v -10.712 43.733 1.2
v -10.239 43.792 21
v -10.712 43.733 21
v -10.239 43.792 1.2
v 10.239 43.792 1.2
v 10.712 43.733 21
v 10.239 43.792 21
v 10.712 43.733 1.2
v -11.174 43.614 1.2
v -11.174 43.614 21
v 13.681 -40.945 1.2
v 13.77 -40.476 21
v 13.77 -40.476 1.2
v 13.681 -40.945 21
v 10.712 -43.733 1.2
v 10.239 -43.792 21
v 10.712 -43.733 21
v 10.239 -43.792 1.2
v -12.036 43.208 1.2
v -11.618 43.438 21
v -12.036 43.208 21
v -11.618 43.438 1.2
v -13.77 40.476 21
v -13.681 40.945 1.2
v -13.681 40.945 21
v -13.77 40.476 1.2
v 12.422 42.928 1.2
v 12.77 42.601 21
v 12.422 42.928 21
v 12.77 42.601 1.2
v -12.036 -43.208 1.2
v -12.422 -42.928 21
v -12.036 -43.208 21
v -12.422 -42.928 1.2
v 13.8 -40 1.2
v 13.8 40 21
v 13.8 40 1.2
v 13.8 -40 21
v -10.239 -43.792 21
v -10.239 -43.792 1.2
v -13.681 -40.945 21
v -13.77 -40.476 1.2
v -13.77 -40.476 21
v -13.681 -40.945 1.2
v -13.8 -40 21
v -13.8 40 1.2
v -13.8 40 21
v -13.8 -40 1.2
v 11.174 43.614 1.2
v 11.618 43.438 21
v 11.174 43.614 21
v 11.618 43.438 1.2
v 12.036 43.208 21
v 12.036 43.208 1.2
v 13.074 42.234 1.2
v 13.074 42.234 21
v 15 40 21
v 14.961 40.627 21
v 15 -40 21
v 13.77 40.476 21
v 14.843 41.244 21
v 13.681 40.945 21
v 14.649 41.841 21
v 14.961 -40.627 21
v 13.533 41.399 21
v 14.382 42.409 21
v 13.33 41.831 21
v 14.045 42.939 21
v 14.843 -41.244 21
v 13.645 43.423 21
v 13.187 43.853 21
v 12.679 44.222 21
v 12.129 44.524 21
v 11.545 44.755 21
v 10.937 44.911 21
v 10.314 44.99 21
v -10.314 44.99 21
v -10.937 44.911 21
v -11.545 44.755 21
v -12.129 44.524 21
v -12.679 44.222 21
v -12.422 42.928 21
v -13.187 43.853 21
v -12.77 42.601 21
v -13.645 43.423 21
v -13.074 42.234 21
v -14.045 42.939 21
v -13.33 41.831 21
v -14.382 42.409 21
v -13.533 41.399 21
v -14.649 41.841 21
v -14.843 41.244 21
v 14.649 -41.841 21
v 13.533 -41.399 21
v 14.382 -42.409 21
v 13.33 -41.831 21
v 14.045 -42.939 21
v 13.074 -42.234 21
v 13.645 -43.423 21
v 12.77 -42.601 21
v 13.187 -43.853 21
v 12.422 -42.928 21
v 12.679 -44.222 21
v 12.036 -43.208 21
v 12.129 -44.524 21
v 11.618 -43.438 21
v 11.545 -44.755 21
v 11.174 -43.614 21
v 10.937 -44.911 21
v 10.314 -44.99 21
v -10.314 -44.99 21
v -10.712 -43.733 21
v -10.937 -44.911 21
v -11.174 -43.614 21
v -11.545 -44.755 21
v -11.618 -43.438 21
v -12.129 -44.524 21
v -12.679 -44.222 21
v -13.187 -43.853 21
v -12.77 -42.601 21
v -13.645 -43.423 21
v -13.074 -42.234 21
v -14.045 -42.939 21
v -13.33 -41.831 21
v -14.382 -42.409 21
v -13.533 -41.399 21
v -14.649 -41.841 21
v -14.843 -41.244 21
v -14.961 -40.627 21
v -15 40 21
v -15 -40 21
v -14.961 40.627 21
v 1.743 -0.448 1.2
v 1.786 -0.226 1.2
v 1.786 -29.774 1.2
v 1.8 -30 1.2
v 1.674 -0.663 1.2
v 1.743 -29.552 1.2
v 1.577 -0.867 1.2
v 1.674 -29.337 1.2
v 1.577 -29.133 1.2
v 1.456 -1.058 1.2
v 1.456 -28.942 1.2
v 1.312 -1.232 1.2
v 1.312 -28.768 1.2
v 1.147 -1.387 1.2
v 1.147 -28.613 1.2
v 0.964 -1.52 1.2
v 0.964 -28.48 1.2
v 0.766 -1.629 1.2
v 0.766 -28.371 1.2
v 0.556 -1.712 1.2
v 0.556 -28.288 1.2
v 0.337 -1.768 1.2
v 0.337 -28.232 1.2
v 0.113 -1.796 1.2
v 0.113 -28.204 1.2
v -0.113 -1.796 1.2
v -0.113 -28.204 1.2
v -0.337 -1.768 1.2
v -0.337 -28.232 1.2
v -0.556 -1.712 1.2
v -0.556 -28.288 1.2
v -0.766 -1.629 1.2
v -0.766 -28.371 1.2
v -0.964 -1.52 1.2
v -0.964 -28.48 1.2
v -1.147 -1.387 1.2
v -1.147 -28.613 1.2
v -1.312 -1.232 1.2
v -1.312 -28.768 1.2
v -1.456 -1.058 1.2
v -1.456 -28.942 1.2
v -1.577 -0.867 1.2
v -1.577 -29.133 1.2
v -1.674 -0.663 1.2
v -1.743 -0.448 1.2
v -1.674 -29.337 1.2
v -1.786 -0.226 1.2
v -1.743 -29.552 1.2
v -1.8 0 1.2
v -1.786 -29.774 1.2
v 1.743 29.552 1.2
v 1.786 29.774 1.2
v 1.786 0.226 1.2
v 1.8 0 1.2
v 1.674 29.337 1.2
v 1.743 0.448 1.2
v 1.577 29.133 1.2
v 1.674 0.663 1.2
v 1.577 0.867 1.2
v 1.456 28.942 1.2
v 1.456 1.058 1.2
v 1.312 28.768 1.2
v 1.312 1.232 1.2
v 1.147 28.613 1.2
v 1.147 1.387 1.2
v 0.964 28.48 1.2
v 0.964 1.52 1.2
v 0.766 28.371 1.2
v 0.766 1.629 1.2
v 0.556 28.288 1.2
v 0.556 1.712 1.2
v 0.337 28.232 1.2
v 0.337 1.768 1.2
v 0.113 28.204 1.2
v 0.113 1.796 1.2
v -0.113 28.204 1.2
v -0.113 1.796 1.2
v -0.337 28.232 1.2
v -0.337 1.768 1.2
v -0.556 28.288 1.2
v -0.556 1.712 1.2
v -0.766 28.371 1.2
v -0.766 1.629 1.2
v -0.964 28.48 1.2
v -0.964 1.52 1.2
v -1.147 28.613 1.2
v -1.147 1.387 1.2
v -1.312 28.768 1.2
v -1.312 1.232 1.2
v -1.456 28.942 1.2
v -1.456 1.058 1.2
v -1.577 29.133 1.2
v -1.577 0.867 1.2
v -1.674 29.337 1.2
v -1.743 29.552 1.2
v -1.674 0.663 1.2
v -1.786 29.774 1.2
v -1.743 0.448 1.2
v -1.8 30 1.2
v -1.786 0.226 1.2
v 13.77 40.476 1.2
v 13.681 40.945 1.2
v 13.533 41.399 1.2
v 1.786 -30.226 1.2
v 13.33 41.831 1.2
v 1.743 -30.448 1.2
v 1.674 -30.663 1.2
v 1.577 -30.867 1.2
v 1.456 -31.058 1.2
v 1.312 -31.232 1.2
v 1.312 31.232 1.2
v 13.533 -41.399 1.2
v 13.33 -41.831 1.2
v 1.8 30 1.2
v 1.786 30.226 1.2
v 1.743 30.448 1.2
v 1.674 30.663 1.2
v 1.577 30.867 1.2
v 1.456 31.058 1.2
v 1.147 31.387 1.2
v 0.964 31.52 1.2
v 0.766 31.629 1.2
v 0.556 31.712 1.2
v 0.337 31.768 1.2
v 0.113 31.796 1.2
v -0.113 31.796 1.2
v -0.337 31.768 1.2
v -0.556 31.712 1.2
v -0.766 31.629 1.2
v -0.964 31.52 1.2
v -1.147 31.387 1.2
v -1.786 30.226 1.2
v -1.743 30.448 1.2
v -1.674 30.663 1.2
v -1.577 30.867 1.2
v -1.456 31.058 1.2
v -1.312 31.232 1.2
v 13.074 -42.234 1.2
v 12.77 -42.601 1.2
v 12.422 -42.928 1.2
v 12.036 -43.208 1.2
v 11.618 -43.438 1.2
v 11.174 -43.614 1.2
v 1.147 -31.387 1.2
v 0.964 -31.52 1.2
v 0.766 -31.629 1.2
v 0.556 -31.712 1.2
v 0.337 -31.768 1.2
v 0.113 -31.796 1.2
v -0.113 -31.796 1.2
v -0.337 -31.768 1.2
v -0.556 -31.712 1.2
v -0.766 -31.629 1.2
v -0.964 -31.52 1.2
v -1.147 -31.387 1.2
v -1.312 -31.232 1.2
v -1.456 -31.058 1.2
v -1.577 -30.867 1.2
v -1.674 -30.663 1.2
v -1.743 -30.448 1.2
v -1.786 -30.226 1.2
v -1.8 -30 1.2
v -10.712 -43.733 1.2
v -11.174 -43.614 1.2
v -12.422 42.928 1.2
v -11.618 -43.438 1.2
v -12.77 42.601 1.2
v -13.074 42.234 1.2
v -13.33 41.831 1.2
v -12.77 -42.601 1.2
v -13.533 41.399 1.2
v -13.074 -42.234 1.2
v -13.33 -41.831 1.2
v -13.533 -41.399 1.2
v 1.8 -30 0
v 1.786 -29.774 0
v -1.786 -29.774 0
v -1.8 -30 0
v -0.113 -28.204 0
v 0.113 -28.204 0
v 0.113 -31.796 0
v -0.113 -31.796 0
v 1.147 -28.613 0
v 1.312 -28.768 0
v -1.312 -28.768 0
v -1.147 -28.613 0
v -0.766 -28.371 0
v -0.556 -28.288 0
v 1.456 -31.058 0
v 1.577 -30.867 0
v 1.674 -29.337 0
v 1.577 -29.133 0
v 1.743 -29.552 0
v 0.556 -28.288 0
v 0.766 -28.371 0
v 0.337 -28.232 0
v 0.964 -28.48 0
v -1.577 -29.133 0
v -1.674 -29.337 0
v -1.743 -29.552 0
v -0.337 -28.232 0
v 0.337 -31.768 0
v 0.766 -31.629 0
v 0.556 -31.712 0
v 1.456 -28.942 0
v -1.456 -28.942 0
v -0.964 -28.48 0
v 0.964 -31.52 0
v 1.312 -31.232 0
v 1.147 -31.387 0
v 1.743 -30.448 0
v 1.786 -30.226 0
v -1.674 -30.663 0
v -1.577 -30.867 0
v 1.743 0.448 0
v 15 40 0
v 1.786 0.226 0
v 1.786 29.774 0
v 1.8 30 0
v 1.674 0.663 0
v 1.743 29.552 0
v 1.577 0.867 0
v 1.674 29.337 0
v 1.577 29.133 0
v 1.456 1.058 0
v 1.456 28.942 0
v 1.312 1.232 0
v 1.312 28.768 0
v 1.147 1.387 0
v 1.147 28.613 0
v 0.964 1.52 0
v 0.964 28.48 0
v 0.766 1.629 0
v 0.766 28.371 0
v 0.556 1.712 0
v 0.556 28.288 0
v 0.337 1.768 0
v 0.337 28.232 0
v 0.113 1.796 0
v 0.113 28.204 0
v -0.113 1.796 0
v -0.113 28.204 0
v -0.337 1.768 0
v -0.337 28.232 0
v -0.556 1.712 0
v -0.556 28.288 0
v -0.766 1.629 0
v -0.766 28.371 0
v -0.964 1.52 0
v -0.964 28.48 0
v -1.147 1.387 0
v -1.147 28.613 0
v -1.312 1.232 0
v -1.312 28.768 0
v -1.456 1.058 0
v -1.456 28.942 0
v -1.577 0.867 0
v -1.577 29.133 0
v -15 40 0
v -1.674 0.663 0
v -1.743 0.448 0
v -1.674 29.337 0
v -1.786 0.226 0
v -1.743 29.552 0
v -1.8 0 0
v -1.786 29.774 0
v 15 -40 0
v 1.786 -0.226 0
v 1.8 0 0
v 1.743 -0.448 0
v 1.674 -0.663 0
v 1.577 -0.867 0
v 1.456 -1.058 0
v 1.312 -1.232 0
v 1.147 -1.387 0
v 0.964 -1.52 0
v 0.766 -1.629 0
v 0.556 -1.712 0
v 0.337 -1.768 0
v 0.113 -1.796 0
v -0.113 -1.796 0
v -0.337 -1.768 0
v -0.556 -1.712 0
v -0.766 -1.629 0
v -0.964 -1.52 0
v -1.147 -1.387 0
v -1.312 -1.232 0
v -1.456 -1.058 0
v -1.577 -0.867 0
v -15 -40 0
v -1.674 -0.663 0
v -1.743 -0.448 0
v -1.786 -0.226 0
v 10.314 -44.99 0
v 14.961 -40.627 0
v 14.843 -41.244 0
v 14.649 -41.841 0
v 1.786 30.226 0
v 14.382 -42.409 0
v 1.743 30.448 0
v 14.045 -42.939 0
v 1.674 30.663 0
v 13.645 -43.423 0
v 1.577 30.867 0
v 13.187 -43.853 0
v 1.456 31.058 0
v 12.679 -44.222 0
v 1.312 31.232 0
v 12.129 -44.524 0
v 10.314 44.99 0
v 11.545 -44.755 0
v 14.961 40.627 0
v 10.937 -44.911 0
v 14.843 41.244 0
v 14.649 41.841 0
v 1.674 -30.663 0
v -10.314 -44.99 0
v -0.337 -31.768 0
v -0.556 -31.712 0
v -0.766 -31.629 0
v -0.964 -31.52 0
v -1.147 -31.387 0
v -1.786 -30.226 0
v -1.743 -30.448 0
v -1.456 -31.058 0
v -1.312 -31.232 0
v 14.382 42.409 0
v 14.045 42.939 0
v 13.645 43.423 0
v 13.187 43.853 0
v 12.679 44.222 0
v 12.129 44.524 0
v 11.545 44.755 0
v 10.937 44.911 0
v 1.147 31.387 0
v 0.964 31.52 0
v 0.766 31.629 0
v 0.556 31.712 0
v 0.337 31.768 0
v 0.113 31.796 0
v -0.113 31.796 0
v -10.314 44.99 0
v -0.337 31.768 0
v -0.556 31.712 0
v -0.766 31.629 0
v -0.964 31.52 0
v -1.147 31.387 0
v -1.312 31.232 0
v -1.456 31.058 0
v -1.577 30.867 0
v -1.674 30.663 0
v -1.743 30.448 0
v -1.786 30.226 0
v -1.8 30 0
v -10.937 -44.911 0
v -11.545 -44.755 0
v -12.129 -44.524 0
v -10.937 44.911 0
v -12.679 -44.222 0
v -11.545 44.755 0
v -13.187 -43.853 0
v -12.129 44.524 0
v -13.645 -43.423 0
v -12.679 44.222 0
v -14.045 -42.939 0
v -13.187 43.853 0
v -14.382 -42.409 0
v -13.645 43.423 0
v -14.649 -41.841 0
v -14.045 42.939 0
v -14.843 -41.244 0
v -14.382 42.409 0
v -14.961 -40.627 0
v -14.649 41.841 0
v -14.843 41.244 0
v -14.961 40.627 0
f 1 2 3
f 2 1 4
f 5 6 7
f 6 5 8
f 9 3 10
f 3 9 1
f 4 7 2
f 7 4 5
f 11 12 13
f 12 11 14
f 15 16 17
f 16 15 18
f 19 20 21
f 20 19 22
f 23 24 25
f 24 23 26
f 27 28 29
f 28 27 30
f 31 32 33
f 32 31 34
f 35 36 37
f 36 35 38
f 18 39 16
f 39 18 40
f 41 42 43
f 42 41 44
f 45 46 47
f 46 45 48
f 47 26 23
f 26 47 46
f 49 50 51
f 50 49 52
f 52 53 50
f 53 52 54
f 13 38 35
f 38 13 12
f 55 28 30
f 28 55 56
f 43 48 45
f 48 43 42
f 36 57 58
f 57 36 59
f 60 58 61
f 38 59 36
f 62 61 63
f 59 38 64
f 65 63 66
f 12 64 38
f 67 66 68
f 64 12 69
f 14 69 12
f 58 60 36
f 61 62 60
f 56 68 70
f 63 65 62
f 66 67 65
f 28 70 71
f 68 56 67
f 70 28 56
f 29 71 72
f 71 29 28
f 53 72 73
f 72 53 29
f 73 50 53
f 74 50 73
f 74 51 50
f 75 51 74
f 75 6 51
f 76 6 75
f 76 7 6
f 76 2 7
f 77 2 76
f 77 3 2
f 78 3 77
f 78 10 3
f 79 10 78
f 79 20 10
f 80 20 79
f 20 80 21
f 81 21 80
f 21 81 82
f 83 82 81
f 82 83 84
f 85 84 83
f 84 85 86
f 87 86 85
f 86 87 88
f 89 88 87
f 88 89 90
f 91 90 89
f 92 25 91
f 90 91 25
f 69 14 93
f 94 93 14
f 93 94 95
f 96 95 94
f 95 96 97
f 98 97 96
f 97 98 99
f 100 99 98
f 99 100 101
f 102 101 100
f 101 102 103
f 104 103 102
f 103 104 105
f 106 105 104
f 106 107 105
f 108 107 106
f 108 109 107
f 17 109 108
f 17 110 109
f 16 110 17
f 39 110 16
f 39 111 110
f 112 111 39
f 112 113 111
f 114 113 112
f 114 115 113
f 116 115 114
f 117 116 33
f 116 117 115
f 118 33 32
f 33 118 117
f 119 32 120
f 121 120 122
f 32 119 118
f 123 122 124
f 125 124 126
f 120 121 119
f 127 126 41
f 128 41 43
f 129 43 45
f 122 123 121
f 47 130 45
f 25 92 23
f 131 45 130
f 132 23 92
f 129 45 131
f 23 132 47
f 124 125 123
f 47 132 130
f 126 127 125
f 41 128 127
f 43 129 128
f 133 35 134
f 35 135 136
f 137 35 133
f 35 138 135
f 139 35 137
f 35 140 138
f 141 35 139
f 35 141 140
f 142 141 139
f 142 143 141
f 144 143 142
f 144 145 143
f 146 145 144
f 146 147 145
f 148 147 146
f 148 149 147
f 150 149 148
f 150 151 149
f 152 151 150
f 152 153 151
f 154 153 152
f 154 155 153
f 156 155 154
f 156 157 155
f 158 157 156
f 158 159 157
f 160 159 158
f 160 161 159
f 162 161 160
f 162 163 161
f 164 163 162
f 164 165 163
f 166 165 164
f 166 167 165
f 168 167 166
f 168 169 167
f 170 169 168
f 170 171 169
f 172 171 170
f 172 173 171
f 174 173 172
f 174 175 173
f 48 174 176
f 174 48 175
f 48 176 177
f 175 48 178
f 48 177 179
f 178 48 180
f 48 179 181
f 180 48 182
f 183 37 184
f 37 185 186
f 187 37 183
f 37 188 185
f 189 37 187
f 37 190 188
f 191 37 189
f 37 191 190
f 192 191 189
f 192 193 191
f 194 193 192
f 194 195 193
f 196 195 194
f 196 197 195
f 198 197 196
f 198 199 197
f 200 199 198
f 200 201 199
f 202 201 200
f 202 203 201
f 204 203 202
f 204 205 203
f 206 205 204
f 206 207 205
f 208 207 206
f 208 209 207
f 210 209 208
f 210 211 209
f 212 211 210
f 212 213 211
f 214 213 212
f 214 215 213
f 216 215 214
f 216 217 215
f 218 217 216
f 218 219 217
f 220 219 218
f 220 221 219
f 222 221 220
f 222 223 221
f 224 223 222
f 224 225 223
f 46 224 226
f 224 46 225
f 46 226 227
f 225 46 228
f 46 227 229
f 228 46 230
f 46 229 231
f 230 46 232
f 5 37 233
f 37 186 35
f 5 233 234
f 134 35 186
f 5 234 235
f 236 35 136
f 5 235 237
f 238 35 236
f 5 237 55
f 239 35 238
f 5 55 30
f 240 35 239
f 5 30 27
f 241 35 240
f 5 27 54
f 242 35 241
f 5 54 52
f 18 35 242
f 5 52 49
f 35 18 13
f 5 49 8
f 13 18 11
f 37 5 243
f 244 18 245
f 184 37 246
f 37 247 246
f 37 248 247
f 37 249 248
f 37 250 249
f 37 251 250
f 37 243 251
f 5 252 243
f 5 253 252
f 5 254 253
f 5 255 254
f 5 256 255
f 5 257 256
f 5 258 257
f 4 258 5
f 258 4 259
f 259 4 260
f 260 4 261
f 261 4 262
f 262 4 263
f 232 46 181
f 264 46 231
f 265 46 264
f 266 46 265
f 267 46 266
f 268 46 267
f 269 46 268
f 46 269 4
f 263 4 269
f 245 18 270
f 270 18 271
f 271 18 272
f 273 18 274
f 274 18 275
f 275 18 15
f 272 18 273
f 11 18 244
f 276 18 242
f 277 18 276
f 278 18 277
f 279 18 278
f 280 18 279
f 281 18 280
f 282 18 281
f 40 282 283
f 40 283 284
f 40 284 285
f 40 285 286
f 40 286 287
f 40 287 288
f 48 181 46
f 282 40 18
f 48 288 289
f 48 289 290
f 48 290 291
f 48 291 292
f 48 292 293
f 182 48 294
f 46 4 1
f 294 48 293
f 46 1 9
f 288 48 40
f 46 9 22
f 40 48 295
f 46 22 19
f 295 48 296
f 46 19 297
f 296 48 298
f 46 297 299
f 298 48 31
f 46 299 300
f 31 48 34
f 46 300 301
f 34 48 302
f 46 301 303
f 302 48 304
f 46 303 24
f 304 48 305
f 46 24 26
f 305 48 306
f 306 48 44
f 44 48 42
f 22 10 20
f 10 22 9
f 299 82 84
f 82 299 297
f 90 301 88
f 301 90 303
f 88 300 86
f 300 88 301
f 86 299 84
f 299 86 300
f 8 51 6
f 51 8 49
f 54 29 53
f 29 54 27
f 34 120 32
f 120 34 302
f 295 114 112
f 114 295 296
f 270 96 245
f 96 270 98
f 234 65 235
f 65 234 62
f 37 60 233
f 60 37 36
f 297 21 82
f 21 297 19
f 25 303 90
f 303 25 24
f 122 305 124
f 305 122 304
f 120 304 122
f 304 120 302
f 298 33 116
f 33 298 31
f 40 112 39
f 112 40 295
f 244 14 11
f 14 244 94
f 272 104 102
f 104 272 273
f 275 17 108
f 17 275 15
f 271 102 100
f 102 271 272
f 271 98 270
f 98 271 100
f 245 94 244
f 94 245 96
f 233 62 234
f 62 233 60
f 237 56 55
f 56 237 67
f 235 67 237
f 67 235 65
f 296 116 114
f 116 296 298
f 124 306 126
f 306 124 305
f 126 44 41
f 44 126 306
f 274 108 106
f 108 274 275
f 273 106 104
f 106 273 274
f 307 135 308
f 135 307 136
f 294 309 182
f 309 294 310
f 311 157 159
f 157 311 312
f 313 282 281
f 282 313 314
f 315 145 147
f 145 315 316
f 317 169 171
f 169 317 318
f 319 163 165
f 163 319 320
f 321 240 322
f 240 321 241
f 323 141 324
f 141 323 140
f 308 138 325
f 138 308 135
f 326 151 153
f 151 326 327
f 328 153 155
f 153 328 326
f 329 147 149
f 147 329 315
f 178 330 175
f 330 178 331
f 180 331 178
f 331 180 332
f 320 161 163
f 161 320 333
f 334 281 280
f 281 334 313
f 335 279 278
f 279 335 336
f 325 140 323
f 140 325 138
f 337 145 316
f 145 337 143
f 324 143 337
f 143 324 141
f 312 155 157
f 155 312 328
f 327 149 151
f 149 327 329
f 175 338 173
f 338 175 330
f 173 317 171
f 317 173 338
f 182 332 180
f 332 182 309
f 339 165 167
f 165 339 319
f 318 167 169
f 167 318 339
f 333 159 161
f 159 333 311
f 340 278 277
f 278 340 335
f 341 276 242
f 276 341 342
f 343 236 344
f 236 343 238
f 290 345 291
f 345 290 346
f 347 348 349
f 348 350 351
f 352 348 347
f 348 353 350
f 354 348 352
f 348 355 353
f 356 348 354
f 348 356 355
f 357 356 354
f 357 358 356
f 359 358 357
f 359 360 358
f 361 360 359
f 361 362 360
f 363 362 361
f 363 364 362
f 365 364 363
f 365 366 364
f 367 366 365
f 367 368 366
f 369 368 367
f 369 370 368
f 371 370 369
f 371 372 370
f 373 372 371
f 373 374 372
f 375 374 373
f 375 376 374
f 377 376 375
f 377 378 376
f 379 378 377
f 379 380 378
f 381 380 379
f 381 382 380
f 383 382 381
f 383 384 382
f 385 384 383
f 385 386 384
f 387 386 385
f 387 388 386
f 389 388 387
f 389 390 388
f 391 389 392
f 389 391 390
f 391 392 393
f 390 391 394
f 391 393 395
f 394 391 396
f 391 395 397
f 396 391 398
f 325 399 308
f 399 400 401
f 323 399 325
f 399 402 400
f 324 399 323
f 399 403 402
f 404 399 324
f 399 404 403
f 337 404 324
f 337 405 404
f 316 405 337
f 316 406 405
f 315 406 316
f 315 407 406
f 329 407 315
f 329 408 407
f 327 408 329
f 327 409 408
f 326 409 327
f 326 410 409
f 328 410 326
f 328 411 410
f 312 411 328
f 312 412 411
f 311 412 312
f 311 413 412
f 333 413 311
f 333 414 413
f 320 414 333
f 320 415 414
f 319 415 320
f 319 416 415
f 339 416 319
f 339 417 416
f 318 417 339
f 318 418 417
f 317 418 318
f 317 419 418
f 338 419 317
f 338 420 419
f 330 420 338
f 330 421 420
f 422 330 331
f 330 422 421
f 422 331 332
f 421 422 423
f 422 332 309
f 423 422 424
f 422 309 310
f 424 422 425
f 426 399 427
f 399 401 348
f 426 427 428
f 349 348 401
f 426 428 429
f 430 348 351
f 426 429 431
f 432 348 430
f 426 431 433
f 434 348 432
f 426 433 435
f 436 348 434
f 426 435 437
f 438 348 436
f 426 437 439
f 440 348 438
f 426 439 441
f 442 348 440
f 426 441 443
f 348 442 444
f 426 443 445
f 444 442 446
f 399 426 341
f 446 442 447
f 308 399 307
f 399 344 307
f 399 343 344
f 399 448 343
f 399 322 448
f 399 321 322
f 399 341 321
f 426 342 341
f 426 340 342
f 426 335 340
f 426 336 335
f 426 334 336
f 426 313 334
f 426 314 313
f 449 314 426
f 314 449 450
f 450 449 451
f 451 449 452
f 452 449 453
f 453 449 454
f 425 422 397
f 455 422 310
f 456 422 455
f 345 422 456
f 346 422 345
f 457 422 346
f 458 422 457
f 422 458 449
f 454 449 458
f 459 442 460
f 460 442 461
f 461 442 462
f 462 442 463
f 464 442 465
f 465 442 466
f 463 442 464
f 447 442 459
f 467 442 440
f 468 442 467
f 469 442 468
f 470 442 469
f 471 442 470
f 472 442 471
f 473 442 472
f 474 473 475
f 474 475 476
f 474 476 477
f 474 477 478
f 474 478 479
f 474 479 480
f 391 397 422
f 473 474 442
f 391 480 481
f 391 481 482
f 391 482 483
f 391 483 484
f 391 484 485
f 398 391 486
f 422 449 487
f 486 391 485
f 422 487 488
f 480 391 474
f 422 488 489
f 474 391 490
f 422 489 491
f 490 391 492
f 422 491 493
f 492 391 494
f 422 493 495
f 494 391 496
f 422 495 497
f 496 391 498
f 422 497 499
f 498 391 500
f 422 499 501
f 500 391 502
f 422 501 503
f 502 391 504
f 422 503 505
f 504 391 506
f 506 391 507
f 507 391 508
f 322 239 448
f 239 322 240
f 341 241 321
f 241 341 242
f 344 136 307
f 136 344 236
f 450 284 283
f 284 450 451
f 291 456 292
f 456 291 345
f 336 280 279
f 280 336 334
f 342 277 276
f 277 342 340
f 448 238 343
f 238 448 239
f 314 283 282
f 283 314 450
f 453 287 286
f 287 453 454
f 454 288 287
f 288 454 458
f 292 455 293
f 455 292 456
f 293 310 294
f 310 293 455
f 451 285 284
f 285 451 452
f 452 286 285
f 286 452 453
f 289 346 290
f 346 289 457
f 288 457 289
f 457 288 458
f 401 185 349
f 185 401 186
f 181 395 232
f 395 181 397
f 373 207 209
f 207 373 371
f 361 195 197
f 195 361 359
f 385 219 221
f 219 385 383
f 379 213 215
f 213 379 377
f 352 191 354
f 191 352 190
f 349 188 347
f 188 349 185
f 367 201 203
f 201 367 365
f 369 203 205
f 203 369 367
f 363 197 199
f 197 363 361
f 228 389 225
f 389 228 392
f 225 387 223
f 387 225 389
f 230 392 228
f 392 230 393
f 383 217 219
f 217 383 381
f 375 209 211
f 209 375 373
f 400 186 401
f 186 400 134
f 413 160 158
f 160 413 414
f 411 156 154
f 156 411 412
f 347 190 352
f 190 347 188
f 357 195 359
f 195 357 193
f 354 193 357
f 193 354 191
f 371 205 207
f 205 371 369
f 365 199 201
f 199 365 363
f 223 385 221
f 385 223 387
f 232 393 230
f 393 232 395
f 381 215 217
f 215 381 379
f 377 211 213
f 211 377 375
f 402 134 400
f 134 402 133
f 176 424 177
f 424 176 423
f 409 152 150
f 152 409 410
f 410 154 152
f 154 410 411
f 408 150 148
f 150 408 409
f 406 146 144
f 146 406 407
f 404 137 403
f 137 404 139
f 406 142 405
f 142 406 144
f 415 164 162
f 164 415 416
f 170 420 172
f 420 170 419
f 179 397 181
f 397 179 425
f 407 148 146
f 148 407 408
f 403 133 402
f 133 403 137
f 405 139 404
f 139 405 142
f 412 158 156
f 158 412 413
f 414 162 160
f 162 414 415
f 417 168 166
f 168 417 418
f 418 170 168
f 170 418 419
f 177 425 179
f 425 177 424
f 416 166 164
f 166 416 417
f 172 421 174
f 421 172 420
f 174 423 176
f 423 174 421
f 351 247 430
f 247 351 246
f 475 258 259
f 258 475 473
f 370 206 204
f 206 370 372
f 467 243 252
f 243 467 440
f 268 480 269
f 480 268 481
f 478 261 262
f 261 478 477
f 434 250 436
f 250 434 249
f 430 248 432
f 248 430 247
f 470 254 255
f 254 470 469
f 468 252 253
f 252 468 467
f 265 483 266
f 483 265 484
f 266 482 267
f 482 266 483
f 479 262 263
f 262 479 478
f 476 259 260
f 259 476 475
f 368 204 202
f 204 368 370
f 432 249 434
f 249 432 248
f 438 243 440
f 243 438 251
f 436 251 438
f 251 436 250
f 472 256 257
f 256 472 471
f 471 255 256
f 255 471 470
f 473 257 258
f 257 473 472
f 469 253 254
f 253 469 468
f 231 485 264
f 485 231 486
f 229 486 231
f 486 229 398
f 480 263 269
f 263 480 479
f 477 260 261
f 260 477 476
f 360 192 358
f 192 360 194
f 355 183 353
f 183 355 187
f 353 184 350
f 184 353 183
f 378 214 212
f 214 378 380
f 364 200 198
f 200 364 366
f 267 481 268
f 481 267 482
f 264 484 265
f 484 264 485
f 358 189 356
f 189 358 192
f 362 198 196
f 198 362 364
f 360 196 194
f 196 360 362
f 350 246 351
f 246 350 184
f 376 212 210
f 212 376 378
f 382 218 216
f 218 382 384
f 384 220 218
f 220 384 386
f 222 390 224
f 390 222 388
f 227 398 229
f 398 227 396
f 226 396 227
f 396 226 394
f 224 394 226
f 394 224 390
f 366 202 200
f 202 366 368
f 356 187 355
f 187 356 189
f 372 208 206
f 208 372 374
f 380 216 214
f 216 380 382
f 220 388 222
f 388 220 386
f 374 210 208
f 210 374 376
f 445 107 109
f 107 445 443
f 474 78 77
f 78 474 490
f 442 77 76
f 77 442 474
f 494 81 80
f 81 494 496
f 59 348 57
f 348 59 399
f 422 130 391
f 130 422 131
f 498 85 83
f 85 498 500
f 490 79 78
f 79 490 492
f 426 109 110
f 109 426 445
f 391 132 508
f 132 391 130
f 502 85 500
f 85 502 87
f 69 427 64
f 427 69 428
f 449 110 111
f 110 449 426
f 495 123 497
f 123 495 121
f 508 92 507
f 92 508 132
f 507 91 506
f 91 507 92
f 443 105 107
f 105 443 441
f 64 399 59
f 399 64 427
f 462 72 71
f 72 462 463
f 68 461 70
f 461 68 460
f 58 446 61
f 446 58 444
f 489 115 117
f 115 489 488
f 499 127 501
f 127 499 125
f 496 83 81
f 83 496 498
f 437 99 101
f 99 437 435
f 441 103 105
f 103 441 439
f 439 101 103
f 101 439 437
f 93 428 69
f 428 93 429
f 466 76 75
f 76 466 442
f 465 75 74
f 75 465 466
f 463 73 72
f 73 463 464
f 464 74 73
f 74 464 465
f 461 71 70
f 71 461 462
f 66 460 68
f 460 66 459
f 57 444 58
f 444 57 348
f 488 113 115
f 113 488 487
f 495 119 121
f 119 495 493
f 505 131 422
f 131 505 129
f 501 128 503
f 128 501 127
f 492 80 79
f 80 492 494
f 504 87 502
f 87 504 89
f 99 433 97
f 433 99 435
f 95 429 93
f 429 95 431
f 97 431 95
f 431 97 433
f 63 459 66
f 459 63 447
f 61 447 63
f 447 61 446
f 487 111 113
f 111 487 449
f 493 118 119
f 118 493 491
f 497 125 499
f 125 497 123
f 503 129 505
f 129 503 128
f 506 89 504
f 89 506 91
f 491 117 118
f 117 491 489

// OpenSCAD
$fn = 50;


difference() {
	union() {
		hull() {
			translate(v = [-10.0000000000, 40.0000000000, 0]) {
				cylinder(h = 21, r = 5);
			}
			translate(v = [10.0000000000, 40.0000000000, 0]) {
				cylinder(h = 21, r = 5);
			}
			translate(v = [-10.0000000000, -40.0000000000, 0]) {
				cylinder(h = 21, r = 5);
			}
			translate(v = [10.0000000000, -40.0000000000, 0]) {
				cylinder(h = 21, r = 5);
			}
		}
	}
	union() {
		translate(v = [0, 0, 1.2000000000]) {
			hull() {
				translate(v = [-10.0000000000, 40.0000000000, 0]) {
					cylinder(h = 19.8000000000, r = 3.8000000000);
				}
				translate(v = [10.0000000000, 40.0000000000, 0]) {
					cylinder(h = 19.8000000000, r = 3.8000000000);
				}
				translate(v = [-10.0000000000, -40.0000000000, 0]) {
					cylinder(h = 19.8000000000, r = 3.8000000000);
				}
				translate(v = [10.0000000000, -40.0000000000, 0]) {
					cylinder(h = 19.8000000000, r = 3.8000000000);
				}
			}
		}
		#translate(v = [0.0000000000, -30.0000000000, 0]) {
			cylinder(h = 1.2000000000, r = 1.8000000000);
		}
		#cylinder(h = 1.2000000000, r = 1.8000000000);
		#translate(v = [0.0000000000, 30.0000000000, 0]) {
			cylinder(h = 1.2000000000, r = 1.8000000000);
		}
	}
}
